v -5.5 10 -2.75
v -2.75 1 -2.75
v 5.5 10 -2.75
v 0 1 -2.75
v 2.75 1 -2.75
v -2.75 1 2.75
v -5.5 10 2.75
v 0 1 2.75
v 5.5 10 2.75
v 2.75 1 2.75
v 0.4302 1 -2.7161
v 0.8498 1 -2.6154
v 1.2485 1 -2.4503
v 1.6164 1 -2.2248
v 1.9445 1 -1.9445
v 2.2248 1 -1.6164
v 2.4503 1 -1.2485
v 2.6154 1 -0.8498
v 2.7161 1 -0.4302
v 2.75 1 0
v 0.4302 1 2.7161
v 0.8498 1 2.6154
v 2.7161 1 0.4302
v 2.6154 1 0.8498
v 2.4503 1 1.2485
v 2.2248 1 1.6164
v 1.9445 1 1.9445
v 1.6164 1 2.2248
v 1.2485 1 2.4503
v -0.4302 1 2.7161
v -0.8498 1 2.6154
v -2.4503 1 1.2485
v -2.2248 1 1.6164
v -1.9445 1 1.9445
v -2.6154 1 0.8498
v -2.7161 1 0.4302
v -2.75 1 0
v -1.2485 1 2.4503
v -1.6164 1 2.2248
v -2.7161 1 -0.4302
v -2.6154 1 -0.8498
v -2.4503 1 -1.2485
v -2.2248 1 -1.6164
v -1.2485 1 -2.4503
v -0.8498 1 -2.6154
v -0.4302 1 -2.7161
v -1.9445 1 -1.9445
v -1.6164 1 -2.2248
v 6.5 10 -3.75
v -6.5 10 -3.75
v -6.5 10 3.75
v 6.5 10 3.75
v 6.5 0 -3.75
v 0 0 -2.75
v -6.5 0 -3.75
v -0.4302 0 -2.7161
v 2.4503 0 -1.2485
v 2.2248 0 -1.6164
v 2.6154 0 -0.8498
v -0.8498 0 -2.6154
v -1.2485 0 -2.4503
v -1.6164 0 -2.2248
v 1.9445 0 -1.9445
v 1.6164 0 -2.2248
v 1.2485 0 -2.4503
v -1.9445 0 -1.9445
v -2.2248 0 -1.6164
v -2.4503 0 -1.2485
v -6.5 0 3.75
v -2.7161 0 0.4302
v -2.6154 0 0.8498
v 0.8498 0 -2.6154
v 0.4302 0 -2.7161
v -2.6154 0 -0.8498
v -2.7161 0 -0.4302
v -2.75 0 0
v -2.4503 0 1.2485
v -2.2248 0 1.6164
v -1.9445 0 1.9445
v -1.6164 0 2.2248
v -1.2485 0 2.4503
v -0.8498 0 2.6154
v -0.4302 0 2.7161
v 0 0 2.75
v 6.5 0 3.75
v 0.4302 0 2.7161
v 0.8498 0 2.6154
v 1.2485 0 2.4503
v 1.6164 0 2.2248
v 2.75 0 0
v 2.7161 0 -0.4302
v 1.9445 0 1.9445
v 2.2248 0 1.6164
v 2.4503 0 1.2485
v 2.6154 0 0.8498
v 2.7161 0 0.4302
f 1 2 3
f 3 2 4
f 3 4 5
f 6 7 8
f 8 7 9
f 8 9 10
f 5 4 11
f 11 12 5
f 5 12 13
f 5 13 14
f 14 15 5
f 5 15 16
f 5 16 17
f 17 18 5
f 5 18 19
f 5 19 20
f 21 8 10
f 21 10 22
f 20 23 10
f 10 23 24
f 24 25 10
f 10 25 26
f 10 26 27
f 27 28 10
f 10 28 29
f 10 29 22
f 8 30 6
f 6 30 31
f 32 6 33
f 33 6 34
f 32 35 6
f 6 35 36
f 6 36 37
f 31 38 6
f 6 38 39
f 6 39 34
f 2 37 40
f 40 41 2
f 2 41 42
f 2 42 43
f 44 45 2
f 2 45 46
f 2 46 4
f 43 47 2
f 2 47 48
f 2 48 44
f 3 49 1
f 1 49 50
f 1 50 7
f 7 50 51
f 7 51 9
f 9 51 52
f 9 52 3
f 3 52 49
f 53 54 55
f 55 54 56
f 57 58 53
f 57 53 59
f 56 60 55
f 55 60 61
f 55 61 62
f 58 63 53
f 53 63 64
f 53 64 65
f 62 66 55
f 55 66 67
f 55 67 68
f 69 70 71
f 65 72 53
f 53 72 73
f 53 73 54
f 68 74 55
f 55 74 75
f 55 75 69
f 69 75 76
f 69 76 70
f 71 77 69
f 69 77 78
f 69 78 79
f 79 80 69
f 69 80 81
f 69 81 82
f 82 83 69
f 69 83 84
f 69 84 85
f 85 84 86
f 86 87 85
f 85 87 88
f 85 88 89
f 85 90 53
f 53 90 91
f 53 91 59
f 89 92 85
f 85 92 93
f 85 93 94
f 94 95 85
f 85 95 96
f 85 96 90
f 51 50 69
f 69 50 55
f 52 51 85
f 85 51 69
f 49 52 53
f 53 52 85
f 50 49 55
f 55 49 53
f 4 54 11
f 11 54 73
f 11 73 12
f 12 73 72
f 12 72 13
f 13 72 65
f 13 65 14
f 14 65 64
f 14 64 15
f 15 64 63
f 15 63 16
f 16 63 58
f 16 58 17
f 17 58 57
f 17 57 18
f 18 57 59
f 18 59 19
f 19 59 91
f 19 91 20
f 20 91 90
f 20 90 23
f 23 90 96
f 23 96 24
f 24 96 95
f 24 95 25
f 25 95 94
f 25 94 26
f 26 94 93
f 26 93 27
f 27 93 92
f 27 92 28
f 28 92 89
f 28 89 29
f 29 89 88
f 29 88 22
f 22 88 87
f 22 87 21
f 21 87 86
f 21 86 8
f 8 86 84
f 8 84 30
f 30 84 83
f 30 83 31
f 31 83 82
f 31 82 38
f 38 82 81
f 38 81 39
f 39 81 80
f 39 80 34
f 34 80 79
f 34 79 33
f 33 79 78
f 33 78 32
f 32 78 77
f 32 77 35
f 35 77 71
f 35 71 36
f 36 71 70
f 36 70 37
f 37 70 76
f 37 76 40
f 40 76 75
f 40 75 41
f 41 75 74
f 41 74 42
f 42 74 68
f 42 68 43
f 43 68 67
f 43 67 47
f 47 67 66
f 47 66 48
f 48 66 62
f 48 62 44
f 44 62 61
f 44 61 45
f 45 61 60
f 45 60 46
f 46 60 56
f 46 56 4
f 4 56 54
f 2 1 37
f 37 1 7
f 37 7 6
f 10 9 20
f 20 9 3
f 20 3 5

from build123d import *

# Parameters (mm, degrees)
SKETCH1_W           = 13
SKETCH1_H           = 7.5
SKETCH1_W_2         = 11
SKETCH1_H_2         = 5.5
BOSS_EXTRUDE1_DEPTH = 10
SKETCH2_W           = 13
SKETCH2_H           = 7.5
SKETCH2_R           = 2.75
BOSS_EXTRUDE2_DEPTH = 1
BOSS_EXTRUDE3_DEPTH = 3


with BuildPart() as part:
    # Sketch1 → Boss-Extrude1 (new body)
    with BuildSketch(Plane(origin=(0, 0, 0), x_dir=(1, 0, 0), z_dir=(0, 1, 0))):
        Rectangle(SKETCH1_W, SKETCH1_H)
        Rectangle(SKETCH1_W_2, SKETCH1_H_2, mode=Mode.SUBTRACT)
    extrude(amount=BOSS_EXTRUDE1_DEPTH)

    # Sketch2 → Boss-Extrude2 (add)
    with BuildSketch(Plane.XZ):
        Rectangle(SKETCH2_W, SKETCH2_H)
        Circle(SKETCH2_R, mode=Mode.SUBTRACT)
    extrude(amount=-BOSS_EXTRUDE2_DEPTH)

    # Sketch4 → Boss-Extrude3 (add, symmetric)
    with BuildSketch(Plane.XY):
        Polygon((-5.5, 10), (-2.75, 1), (-5.5, 1), align=None)
        Polygon((5.5, 10), (2.75, 1), (5.5, 1), align=None)
    extrude(amount=BOSS_EXTRUDE3_DEPTH, both=True)


solid = part.part
